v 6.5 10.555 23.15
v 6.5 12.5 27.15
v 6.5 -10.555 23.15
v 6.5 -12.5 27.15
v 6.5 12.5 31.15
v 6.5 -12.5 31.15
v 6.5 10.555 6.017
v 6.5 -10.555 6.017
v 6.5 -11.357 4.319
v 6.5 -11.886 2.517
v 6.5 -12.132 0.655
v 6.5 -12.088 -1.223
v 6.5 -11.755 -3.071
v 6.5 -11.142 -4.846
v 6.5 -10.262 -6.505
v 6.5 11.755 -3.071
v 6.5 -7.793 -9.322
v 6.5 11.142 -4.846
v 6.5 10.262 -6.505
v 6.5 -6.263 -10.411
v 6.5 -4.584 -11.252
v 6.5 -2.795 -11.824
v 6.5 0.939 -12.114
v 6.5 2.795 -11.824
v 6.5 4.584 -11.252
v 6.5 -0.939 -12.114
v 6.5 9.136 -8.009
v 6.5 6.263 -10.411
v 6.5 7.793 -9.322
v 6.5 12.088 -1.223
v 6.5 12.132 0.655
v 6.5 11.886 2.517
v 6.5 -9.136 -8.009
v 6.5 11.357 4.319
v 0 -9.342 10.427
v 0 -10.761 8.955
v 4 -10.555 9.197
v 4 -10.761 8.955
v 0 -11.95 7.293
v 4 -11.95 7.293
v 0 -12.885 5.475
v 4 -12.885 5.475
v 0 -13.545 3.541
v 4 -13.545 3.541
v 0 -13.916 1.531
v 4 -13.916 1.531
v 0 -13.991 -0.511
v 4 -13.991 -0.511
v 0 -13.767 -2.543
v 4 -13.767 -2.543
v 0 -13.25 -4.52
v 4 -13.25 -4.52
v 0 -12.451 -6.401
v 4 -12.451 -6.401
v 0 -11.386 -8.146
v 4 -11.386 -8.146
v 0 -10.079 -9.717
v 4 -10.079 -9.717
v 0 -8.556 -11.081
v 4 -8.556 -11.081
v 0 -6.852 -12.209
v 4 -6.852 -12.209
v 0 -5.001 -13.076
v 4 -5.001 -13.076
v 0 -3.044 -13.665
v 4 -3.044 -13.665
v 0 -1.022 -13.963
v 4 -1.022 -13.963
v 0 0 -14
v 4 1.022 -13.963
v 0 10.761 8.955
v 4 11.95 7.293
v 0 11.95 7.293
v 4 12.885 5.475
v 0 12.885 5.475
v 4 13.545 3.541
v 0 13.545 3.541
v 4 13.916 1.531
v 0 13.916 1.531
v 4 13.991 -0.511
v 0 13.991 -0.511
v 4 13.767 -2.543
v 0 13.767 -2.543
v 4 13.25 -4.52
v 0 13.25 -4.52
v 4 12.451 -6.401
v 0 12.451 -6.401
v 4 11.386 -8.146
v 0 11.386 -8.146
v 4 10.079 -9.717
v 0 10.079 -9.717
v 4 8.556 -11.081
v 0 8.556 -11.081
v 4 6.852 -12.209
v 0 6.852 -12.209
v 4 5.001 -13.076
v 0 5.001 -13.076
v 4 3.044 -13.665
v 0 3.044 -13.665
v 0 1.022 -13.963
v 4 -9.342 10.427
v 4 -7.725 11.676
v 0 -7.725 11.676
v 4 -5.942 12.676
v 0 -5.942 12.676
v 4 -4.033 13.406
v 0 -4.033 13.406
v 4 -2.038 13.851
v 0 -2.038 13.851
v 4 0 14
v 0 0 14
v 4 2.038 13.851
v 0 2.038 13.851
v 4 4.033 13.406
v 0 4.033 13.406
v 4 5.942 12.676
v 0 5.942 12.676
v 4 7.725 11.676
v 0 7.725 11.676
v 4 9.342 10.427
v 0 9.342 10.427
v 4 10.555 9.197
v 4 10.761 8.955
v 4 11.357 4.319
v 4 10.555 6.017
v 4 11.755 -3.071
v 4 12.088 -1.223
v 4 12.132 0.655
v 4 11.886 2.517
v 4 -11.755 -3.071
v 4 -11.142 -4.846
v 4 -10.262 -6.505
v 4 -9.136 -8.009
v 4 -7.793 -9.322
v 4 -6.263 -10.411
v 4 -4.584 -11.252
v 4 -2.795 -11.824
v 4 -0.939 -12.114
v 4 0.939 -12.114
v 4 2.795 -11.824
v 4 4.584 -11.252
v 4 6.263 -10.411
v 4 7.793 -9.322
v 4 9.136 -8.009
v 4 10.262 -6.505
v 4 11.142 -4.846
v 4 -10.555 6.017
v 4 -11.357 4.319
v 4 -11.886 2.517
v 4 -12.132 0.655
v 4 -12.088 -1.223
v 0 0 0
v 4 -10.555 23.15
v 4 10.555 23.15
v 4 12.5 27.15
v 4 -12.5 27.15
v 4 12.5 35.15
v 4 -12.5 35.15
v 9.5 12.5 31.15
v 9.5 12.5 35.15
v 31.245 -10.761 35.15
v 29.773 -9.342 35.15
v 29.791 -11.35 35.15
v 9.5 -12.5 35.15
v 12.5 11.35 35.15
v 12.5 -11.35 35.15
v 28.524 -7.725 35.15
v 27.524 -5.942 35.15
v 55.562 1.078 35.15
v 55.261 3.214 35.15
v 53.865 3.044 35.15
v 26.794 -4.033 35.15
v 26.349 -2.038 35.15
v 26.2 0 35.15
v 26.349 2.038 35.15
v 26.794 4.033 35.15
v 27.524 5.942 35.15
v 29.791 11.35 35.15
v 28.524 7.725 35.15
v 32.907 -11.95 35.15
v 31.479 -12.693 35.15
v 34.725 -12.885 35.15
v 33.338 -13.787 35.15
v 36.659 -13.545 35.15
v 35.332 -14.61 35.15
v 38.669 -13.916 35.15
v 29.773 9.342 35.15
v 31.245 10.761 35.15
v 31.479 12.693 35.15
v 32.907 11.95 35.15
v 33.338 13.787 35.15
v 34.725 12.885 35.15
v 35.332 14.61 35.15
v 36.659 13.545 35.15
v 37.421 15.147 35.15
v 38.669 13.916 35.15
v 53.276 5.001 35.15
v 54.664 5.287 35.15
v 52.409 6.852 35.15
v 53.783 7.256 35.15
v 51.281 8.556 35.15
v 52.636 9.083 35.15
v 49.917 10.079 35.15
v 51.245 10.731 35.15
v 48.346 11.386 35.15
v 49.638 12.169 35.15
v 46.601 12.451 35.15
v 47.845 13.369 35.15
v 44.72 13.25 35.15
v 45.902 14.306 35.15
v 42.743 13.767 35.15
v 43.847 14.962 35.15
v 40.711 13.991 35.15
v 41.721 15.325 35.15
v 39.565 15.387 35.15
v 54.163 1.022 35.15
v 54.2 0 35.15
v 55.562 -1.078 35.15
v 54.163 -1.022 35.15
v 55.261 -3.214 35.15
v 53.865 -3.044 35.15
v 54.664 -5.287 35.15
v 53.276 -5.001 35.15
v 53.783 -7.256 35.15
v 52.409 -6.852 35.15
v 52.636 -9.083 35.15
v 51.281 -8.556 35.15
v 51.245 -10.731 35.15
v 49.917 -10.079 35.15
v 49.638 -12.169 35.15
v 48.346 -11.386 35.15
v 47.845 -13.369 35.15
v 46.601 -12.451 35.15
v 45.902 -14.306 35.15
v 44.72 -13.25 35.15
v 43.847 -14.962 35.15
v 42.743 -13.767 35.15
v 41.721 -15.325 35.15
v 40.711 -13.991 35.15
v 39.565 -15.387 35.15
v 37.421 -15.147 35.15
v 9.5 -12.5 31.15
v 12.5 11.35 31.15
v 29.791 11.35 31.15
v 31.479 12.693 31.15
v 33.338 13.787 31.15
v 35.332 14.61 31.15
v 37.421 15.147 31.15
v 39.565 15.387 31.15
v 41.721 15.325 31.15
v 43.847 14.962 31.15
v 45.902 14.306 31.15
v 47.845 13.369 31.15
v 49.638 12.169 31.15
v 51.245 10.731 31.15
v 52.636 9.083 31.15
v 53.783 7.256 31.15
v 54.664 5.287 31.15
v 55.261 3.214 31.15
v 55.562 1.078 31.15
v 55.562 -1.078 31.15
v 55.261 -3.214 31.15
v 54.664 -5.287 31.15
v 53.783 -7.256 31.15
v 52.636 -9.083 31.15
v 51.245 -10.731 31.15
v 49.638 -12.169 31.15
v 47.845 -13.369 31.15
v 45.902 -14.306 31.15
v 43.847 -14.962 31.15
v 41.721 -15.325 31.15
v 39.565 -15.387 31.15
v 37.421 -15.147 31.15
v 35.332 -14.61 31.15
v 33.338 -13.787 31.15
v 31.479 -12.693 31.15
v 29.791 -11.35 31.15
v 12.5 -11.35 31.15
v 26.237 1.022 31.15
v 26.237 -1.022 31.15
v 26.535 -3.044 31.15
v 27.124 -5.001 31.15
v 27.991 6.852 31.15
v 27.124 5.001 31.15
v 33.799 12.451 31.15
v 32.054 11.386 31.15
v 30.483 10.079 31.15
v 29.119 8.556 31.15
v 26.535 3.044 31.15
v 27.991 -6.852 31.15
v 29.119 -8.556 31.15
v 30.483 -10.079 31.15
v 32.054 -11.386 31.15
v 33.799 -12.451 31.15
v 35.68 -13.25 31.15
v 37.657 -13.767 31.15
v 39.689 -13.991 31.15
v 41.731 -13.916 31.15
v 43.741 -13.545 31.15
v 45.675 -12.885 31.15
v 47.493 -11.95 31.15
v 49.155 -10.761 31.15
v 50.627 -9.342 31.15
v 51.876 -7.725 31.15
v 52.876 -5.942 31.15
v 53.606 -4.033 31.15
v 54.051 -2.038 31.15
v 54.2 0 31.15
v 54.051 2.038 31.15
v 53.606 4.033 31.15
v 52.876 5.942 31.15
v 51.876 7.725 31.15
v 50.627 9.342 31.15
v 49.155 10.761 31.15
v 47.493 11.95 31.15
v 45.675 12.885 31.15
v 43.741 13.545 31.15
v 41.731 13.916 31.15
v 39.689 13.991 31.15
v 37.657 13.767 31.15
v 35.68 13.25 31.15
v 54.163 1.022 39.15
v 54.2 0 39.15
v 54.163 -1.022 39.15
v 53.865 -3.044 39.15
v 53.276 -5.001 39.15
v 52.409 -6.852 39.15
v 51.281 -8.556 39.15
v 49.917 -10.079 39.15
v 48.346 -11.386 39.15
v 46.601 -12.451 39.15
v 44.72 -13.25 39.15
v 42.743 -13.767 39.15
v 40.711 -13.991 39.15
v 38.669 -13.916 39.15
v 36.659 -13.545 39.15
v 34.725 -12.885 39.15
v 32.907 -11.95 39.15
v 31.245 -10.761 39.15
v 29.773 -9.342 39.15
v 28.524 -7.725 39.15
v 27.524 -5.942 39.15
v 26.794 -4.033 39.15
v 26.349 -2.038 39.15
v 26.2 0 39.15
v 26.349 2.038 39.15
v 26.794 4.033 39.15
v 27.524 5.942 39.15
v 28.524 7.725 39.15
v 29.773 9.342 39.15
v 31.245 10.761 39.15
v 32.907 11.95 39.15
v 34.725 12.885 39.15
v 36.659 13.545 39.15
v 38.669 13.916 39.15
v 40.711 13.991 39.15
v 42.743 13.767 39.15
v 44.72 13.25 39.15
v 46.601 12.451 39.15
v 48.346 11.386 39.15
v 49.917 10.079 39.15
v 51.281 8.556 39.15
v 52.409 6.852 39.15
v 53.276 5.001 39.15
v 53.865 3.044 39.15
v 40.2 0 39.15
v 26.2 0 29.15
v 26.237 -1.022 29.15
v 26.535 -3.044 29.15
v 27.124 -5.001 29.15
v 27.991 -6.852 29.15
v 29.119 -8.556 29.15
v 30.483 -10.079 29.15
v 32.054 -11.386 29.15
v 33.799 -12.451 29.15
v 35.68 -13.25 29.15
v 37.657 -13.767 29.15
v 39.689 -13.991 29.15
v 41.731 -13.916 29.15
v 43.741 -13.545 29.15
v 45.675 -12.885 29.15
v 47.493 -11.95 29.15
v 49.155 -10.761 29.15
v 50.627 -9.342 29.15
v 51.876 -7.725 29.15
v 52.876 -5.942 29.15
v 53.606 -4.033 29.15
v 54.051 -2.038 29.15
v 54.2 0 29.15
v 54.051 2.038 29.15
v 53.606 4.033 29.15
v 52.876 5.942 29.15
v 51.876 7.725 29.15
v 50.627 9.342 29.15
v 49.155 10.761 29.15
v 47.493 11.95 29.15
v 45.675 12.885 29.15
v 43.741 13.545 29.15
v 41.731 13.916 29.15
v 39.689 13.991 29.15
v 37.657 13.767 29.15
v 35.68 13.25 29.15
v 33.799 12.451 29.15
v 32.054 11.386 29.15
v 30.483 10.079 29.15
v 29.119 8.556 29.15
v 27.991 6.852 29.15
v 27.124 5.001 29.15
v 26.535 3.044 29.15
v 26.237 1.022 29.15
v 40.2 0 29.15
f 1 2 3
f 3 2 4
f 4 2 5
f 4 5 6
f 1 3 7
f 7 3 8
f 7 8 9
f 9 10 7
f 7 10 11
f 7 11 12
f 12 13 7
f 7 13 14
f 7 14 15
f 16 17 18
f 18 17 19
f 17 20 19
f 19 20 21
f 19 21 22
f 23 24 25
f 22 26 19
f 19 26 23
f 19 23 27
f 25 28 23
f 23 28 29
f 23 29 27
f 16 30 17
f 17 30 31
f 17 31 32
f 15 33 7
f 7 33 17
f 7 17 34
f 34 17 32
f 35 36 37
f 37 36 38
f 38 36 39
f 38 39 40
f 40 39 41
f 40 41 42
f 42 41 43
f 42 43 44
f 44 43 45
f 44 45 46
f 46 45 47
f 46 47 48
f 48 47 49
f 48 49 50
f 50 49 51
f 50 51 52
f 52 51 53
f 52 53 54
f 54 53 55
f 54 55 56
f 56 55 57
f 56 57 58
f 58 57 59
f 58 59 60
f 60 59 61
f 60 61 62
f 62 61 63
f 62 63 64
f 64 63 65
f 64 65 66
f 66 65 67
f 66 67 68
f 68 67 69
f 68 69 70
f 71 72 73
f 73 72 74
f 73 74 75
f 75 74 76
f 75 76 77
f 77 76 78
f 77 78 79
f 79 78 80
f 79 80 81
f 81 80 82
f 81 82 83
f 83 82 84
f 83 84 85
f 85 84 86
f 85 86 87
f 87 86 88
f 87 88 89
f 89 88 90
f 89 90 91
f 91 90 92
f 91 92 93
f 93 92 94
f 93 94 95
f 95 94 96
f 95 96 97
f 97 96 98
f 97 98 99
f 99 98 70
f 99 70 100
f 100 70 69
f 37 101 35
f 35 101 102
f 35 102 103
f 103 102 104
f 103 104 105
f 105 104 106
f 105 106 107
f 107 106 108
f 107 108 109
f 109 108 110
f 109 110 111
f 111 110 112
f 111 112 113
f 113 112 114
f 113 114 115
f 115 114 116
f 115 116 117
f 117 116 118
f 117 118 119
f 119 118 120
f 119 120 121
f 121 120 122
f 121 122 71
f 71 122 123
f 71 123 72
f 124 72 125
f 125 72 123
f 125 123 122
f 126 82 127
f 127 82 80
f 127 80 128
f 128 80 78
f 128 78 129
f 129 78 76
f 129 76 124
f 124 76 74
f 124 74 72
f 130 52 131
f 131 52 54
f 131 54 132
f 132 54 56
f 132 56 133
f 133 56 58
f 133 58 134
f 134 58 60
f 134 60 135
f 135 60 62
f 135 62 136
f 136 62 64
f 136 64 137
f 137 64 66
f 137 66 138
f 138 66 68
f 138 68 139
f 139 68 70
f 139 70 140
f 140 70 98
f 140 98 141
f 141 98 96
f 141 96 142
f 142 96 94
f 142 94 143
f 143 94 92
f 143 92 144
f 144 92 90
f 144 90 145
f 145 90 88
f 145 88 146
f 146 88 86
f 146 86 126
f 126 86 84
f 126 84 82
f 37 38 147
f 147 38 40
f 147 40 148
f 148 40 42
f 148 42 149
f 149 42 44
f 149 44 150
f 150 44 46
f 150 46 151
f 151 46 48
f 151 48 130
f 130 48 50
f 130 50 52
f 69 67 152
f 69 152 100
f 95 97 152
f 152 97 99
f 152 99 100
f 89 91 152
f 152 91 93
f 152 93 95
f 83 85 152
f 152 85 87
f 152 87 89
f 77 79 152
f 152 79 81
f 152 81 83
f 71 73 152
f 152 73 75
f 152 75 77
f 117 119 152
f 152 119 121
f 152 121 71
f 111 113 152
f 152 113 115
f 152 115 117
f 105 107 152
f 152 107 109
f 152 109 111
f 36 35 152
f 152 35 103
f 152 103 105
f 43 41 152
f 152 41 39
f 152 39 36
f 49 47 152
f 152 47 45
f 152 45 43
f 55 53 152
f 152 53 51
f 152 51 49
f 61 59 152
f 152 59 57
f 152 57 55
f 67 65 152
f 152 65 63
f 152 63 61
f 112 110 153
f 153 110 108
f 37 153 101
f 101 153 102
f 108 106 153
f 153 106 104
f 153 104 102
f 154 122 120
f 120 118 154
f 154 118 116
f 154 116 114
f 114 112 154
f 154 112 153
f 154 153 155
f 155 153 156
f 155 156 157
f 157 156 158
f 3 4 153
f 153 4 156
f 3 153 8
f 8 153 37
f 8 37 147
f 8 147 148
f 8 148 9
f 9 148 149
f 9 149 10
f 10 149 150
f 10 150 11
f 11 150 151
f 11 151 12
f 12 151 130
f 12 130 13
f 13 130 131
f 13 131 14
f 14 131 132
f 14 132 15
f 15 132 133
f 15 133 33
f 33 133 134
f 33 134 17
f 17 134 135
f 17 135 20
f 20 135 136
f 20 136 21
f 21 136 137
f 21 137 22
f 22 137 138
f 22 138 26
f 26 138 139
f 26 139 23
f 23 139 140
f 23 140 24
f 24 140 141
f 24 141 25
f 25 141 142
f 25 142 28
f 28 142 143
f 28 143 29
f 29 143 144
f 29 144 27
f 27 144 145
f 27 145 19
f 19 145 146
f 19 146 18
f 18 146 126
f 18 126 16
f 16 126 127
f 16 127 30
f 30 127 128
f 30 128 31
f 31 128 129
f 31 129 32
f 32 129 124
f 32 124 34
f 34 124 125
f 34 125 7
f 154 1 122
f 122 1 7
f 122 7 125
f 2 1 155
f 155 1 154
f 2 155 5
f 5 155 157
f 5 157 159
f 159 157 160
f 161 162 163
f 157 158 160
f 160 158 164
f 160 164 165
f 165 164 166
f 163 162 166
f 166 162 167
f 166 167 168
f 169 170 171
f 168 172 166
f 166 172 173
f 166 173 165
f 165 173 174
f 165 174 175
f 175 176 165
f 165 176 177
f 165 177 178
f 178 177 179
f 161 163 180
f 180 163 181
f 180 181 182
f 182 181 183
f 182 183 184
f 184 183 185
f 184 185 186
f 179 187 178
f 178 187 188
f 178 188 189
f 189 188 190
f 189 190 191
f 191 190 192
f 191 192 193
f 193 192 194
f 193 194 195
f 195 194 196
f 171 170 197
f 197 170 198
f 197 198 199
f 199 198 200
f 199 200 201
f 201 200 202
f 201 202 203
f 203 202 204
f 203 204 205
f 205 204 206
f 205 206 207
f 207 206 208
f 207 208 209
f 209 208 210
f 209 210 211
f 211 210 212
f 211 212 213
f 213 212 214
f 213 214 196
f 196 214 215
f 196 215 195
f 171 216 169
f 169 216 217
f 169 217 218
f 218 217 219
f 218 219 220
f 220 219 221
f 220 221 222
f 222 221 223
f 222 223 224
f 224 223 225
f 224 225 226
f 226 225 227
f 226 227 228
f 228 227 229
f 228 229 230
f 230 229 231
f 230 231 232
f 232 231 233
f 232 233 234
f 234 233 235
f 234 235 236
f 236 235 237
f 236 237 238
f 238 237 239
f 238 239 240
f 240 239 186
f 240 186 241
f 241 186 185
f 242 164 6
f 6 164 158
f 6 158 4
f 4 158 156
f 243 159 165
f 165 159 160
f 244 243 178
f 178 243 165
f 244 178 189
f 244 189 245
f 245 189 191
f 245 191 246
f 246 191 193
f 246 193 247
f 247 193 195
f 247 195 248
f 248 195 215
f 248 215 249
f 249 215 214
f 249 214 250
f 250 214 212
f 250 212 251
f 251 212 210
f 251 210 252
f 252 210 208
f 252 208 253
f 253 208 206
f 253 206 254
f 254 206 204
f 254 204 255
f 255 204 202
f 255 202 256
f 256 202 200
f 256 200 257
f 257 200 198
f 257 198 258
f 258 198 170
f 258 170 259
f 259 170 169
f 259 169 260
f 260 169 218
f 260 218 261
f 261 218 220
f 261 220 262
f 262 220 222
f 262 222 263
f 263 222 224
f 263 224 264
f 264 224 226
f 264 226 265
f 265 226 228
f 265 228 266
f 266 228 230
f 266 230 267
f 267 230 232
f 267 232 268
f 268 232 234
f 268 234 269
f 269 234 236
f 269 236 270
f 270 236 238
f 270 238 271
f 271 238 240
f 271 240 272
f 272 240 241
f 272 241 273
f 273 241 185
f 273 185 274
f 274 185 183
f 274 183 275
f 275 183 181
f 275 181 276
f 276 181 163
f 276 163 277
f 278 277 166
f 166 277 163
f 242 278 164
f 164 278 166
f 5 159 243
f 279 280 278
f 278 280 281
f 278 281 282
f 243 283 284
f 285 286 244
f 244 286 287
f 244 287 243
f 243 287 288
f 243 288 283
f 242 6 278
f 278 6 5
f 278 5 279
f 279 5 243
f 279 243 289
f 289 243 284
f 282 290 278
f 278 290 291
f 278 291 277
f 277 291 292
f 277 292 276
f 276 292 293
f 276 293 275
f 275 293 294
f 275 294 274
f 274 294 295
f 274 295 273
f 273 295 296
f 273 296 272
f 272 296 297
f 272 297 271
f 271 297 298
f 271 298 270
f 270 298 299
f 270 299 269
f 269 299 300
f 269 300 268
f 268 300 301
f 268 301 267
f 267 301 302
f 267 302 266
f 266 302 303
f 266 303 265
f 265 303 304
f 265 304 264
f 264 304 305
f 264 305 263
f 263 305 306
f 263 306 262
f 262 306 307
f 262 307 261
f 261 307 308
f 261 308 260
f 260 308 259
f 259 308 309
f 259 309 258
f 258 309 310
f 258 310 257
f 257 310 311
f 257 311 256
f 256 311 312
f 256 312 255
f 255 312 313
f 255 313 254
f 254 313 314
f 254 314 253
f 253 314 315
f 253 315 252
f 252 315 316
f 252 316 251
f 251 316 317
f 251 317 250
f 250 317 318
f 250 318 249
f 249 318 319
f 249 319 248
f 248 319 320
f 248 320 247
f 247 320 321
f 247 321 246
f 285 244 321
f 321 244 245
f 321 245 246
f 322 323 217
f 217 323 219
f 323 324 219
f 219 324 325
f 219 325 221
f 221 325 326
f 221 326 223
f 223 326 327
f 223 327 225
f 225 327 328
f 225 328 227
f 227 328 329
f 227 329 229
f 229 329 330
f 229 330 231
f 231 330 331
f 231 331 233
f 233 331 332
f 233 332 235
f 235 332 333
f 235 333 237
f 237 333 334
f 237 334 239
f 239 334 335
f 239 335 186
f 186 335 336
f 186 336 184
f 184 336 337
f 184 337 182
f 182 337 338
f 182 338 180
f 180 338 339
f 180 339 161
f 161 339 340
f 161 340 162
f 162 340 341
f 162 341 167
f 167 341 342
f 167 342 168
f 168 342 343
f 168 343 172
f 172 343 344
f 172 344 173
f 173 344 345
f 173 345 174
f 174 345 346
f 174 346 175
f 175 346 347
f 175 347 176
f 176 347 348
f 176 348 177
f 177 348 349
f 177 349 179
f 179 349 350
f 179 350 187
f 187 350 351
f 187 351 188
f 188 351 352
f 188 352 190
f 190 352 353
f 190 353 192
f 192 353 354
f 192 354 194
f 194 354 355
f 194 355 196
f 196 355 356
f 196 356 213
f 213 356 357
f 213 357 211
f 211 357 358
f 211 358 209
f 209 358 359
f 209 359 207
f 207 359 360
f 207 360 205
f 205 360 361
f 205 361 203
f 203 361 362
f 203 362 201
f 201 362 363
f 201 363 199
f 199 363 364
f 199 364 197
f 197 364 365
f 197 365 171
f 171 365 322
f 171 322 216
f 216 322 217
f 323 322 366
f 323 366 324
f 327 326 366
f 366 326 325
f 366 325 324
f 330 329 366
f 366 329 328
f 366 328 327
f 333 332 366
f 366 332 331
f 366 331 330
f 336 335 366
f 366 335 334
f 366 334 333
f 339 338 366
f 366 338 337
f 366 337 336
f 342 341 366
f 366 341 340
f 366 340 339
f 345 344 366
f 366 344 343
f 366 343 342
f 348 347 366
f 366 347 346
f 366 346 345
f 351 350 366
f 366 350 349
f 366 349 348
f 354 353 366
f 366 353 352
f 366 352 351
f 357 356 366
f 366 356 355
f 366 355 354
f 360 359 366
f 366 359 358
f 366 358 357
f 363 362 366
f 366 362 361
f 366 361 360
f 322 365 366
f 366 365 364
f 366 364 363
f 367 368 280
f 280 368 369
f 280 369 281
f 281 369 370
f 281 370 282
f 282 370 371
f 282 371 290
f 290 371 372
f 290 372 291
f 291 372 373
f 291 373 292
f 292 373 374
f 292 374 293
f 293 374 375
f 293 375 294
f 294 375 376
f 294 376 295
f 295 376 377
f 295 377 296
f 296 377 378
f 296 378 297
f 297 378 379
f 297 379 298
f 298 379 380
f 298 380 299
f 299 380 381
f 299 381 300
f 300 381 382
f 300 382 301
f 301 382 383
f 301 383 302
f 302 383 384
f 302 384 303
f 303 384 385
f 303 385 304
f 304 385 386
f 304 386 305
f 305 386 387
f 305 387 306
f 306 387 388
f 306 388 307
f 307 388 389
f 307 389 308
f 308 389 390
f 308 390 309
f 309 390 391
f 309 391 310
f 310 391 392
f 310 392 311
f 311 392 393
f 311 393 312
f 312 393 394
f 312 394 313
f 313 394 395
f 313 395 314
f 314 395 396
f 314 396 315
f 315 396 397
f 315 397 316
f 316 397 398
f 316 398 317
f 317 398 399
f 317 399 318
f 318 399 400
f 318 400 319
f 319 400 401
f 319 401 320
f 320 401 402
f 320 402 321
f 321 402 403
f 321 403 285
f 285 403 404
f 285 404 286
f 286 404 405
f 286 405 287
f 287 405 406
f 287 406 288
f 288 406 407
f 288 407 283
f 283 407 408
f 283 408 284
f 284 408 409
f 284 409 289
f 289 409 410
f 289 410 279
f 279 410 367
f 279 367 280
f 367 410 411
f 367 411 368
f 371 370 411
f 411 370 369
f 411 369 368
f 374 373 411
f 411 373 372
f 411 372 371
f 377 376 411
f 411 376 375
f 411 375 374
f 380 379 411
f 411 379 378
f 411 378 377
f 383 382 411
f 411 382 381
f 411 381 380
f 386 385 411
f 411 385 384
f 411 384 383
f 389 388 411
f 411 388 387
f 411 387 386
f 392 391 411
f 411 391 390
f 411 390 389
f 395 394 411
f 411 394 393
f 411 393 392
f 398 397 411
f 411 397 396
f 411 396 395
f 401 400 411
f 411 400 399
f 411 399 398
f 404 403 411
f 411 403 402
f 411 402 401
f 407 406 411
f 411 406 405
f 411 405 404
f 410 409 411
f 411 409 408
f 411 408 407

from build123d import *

# Parameters (mm, degrees)
SKETCH2_R           = 14
BOSS_EXTRUDE1_DEPTH = 4
BOSS_EXTRUDE2_DEPTH = 2.5
BOSS_EXTRUDE3_DEPTH = 4
SKETCH5_R           = 14
BOSS_EXTRUDE4_DEPTH = 4
BOSS_EXTRUDE5_START = 2
SKETCH6_R           = 14
BOSS_EXTRUDE5_DEPTH = 2


with BuildPart() as part:
    # Sketch2 → Boss-Extrude1 (new body)
    with BuildSketch(Plane(origin=(0, 0, 0), x_dir=(0, 0, -1), z_dir=(1, 0, 0))):
        Circle(SKETCH2_R)
    extrude(amount=BOSS_EXTRUDE1_DEPTH)

    # Sketch3 → Boss-Extrude2 (add)
    with BuildSketch(Plane(origin=(4, 0, 0), x_dir=(0, 0, -1), z_dir=(1, 0, 0))):
        with BuildLine():
            Line((-35.15, 12.5), (-35.15, -12.5))
            Line((-35.15, -12.5), (-27.15, -12.5))
            Line((-27.15, -12.5), (-23.15, -10.555257391))
            Line((-23.15, -10.555257391), (-6.017394902, -10.555257391))
            ThreePointArc((-6.017394902, -10.555257391), (12.15, 0), (-6.017394902, 10.555257391))
            Line((-6.017394902, 10.555257391), (-23.15, 10.555257391))
            Line((-23.15, 10.555257391), (-27.15, 12.5))
            Line((-27.15, 12.5), (-35.15, 12.5))
        make_face()
    extrude(amount=BOSS_EXTRUDE2_DEPTH)

    # Sketch4 → Boss-Extrude3 (add)
    with BuildSketch(Plane.XY.offset(35.15)):
        with BuildLine():
            Line((12.5, -11.35), (29.791469844, -11.35))
            ThreePointArc((29.791469844, -11.35), (55.6, 0), (29.791469844, 11.35))
            Line((29.791469844, 11.35), (12.5, 11.35))
            Line((12.5, 11.35), (9.5, 12.5))
            Line((9.5, 12.5), (6.5, 12.5))
            Line((6.5, 12.5), (6.5, -12.5))
            Line((6.5, -12.5), (9.5, -12.5))
            Line((9.5, -12.5), (12.5, -11.35))
        make_face()
    extrude(amount=-BOSS_EXTRUDE3_DEPTH)

    # Sketch5 → Boss-Extrude4 (add)
    with BuildSketch(Plane.XY.offset(35.15)):
        with Locations((40.2, 0)):
            Circle(SKETCH5_R)
    extrude(amount=BOSS_EXTRUDE4_DEPTH)

    # Sketch6 → Boss-Extrude5 (add)
    with BuildSketch(Plane(origin=(0, 0, 31.15), x_dir=(-1, 0, 0), z_dir=(0, 0, -1)).offset(BOSS_EXTRUDE5_START)):
        with Locations(Location((-40.2, 0, 0), (0, 0, 180))):
            Circle(SKETCH6_R)
    extrude(amount=-BOSS_EXTRUDE5_DEPTH)


solid = part.part
